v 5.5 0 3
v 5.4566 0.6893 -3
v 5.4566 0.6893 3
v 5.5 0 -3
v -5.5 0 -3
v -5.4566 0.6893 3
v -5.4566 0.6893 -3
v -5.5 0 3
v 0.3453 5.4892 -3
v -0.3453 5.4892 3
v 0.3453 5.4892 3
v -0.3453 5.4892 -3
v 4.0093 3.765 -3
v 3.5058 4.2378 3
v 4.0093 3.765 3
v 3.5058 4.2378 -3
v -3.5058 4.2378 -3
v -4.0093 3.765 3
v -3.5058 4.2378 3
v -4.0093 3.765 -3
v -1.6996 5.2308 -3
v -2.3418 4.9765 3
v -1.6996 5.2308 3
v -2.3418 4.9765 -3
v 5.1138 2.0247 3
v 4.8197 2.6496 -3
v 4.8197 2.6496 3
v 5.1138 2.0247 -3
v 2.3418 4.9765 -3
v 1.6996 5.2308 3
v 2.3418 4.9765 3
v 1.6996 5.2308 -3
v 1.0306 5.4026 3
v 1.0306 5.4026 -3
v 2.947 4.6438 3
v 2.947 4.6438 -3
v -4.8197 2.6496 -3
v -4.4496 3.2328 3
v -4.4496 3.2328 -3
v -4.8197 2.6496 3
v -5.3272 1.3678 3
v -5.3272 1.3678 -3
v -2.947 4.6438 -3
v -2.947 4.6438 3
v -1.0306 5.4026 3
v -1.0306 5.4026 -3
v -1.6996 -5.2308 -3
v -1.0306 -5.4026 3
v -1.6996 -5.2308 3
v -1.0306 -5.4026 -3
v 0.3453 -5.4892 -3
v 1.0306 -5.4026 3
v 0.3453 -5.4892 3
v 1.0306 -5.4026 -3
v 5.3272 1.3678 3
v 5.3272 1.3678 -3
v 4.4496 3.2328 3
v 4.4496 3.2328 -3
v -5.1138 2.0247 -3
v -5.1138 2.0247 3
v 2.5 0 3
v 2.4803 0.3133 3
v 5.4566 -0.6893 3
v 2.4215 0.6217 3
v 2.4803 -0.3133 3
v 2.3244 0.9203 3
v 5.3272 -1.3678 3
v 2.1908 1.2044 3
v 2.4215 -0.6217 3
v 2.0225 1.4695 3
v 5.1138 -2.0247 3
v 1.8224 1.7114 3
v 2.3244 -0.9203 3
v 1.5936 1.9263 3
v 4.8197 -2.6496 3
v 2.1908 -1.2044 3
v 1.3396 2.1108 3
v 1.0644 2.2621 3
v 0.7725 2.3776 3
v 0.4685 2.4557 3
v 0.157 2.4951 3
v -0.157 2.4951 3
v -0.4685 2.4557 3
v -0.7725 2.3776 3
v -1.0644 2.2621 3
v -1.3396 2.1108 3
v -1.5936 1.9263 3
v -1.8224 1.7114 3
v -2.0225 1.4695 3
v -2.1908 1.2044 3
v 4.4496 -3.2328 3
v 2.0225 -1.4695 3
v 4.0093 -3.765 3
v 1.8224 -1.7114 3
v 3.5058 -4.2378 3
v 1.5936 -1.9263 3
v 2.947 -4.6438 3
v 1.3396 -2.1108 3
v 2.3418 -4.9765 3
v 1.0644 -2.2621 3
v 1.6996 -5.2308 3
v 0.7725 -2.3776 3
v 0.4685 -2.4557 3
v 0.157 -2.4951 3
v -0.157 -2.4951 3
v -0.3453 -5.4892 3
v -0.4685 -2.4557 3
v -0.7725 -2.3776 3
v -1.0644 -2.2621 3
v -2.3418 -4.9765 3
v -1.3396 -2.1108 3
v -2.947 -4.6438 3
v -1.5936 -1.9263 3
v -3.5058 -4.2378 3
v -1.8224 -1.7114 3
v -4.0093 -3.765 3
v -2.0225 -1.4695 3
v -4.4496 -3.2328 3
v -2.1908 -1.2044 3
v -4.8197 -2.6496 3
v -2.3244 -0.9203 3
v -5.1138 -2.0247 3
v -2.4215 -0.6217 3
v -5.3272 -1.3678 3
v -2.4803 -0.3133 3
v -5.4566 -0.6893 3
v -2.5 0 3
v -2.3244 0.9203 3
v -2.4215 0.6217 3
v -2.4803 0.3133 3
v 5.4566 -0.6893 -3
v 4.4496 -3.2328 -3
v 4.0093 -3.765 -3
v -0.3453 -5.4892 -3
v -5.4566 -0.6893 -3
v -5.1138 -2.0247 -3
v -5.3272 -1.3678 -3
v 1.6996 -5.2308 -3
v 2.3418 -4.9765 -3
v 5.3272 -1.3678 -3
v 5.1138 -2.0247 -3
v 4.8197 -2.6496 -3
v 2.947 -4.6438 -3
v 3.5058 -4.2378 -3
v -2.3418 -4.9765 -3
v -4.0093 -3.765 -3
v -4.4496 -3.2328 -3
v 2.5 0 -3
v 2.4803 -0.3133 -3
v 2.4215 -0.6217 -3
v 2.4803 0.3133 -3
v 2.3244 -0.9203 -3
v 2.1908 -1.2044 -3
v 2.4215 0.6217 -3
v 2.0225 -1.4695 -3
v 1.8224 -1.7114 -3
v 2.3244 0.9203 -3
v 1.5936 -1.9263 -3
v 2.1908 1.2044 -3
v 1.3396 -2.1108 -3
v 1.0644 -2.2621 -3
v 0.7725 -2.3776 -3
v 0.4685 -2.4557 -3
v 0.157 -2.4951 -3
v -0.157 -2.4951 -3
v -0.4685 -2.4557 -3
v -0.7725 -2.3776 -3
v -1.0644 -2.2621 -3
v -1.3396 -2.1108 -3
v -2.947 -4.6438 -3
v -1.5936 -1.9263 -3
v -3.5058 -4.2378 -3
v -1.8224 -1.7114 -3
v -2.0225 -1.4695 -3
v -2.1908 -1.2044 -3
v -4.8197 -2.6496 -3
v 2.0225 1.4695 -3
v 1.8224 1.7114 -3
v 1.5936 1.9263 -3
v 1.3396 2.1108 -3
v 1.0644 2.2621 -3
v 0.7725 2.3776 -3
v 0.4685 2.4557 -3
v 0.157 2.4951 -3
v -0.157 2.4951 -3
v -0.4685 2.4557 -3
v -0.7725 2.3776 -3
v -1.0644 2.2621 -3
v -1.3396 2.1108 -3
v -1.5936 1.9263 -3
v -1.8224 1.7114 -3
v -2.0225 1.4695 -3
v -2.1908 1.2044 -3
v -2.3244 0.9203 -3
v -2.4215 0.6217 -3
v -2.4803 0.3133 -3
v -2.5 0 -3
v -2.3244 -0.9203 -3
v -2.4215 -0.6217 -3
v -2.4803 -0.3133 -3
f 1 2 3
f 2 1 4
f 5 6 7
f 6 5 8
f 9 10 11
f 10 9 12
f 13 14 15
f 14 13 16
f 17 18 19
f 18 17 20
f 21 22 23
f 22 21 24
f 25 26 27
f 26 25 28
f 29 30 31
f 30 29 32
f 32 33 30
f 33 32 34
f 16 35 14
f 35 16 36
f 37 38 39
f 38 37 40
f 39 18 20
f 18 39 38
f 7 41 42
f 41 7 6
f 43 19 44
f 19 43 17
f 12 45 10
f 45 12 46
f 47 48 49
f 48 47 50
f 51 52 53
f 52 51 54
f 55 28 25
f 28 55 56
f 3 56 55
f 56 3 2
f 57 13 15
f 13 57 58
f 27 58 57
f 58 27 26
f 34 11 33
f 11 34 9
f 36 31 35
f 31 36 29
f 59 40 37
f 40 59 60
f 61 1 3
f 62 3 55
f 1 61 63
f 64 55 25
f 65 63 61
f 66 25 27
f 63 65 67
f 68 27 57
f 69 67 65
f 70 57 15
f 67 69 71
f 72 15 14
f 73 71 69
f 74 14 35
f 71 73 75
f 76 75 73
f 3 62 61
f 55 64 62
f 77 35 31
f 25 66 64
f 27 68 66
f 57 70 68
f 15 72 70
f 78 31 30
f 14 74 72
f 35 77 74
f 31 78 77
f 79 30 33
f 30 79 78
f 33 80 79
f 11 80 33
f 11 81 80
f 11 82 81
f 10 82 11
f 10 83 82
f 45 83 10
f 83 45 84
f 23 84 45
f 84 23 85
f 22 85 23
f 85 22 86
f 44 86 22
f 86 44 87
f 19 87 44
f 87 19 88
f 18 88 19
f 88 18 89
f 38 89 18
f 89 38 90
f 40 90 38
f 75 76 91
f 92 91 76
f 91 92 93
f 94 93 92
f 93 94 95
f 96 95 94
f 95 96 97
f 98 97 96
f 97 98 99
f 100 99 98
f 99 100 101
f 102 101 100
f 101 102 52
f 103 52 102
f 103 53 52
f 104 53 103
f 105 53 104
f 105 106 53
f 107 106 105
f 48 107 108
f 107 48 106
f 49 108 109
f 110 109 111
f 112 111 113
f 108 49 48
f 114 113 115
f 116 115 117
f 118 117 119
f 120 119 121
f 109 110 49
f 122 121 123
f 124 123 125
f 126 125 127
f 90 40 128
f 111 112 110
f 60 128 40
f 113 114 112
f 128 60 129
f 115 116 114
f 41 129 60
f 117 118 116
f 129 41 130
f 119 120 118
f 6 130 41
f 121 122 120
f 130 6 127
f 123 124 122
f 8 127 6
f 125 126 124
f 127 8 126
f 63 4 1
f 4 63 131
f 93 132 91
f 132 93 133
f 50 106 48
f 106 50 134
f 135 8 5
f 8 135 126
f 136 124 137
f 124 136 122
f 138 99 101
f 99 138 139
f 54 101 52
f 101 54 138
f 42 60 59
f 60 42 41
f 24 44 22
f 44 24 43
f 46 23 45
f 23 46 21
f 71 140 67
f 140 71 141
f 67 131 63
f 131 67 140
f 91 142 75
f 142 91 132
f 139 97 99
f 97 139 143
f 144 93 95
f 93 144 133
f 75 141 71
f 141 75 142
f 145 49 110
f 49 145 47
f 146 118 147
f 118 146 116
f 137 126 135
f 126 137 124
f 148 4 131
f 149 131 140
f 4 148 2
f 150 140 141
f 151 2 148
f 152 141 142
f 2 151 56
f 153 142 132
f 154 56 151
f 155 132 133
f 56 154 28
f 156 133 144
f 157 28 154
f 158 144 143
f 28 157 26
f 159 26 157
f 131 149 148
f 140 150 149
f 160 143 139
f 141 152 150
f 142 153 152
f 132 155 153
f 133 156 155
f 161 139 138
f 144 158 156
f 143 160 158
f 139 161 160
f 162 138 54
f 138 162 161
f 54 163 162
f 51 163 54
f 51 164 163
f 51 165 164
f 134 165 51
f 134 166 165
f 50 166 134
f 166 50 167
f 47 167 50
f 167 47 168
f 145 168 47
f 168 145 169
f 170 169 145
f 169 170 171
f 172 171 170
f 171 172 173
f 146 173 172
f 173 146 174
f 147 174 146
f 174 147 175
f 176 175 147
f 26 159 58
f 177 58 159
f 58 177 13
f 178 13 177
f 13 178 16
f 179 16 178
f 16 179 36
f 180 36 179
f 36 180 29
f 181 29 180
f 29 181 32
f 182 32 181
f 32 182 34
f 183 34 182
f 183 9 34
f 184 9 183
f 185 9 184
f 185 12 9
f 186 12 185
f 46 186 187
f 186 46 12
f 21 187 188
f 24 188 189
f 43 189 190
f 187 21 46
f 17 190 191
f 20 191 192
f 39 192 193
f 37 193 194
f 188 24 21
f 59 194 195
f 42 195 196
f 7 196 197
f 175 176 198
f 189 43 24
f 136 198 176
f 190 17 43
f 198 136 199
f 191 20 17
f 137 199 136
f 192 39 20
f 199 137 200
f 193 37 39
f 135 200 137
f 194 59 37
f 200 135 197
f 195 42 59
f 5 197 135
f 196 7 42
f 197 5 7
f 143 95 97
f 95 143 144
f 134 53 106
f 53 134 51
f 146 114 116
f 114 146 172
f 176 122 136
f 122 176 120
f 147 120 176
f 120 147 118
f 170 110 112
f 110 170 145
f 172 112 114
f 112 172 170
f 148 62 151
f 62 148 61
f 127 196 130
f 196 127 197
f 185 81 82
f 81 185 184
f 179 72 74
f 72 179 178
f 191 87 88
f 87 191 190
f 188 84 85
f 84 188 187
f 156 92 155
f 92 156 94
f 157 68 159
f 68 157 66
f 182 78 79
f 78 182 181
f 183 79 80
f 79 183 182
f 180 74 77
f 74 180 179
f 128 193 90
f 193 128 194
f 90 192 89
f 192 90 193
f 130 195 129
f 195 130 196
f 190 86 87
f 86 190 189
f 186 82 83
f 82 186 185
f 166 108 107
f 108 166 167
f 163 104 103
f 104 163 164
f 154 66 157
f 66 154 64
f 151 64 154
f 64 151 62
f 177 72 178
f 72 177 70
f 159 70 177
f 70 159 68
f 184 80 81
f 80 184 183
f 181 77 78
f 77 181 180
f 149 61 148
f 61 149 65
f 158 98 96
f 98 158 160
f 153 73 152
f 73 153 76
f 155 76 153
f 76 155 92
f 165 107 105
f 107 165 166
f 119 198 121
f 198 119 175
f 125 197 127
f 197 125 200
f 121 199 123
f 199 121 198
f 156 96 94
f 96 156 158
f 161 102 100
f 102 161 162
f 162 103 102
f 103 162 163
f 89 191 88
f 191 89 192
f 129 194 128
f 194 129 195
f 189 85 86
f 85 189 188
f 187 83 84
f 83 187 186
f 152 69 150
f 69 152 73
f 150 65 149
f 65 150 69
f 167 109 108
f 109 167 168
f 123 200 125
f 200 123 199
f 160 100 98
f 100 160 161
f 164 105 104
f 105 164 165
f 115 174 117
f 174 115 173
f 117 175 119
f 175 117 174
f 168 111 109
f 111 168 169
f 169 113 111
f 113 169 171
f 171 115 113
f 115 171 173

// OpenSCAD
$fn = 50;


difference() {
	union() {
		translate(v = [0, 0, -3.0000000000]) {
			cylinder(h = 6, r = 5.5000000000);
		}
	}
	union() {
		translate(v = [0, 0, -100.0000000000]) {
			cylinder(h = 200, r = 2.5000000000);
		}
	}
}
